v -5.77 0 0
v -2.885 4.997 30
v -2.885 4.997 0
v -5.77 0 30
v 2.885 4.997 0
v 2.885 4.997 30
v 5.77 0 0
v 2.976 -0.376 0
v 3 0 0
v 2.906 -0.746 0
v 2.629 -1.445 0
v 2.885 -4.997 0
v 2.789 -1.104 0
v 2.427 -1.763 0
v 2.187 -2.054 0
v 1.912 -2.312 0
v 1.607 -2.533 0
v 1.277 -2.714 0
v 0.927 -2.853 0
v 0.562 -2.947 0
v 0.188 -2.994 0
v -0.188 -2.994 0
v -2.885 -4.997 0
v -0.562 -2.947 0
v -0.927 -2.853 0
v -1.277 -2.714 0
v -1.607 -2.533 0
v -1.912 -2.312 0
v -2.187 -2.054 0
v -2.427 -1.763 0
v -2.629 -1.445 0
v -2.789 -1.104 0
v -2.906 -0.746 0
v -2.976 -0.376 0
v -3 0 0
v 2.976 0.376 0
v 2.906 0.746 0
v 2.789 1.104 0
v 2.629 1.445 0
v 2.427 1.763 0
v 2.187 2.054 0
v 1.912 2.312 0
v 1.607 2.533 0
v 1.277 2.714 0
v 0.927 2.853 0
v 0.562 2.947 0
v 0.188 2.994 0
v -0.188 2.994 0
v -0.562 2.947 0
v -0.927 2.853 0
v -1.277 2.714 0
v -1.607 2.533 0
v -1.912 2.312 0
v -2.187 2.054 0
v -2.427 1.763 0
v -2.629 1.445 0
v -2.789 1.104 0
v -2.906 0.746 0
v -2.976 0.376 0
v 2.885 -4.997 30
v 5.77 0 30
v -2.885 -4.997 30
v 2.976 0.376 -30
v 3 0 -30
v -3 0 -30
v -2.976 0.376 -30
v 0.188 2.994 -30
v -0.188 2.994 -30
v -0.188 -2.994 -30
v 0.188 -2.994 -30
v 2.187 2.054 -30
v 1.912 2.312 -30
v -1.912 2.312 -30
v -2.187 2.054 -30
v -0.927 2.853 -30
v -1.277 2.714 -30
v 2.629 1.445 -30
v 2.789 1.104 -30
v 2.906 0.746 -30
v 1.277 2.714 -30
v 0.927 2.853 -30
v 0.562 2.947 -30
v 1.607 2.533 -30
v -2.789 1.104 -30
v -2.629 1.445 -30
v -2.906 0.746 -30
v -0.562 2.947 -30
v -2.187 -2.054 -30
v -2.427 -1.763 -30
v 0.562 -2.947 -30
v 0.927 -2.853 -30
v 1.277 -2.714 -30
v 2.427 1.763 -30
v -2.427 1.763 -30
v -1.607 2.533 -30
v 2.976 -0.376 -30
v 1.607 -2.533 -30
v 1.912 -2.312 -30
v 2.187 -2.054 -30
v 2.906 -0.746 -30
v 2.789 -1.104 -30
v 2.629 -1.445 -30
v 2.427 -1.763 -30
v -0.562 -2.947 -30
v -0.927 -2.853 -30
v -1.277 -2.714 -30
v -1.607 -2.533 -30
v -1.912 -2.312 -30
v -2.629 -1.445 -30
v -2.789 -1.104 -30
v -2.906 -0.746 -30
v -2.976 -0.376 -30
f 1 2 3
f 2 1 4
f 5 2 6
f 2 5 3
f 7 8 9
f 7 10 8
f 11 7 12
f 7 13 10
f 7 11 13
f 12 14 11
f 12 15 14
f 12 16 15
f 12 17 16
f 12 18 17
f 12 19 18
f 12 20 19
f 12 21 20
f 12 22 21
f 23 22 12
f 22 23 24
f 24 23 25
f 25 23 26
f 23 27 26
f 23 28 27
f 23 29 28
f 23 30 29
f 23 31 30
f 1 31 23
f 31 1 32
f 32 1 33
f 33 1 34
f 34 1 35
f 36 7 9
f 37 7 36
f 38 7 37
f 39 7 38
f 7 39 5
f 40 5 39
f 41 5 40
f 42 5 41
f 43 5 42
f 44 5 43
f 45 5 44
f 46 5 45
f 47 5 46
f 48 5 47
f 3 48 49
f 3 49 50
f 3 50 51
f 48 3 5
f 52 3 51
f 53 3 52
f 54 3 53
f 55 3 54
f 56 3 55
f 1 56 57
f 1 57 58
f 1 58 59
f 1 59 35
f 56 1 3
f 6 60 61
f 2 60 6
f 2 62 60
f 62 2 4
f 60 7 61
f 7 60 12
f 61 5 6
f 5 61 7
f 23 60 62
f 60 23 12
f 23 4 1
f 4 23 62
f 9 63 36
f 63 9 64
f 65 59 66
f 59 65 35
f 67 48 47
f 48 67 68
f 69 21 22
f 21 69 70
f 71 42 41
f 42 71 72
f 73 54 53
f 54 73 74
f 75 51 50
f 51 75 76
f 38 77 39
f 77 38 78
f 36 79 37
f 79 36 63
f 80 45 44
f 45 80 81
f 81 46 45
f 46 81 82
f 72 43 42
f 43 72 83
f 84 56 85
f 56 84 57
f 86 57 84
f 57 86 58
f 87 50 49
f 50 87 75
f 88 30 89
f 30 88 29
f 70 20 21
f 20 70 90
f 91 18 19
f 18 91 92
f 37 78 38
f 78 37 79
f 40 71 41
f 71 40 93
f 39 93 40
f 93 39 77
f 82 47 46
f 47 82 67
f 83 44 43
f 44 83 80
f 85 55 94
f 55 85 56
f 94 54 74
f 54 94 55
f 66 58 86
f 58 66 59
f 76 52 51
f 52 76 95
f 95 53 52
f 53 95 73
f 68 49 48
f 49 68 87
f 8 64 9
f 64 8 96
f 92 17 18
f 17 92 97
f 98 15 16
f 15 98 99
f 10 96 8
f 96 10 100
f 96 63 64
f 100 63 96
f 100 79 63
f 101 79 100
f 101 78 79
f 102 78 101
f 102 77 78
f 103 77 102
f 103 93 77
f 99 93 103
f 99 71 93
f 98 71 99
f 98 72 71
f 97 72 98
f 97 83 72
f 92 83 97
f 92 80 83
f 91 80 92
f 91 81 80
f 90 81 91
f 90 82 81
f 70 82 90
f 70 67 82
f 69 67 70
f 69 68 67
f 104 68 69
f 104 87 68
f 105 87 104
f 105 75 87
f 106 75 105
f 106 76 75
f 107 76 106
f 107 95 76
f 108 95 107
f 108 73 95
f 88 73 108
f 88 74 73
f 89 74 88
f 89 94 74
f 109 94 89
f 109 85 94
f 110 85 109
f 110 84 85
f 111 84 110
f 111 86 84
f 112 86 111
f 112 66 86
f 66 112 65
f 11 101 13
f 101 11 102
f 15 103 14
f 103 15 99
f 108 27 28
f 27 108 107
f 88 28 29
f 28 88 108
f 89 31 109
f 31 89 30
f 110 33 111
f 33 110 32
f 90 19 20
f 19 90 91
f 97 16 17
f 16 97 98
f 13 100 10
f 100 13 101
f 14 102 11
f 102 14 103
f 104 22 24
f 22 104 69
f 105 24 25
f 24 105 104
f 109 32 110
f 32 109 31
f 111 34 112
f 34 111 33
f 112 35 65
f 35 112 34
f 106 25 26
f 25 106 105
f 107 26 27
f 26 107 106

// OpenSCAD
$fn = 50;


difference() {
	union() {
		linear_extrude(height = 30) {
			polygon(points = [[5.7700000000, 0.0000000000], [2.8850000000, 4.9969665798], [-2.8850000000, 4.9969665798], [-5.7700000000, 0.0000000000], [-2.8850000000, -4.9969665798], [2.8850000000, -4.9969665798]]);
		}
		translate(v = [0, 0, -30]) {
			cylinder(h = 30, r = 3.0000000000);
		}
	}
	union();
}
